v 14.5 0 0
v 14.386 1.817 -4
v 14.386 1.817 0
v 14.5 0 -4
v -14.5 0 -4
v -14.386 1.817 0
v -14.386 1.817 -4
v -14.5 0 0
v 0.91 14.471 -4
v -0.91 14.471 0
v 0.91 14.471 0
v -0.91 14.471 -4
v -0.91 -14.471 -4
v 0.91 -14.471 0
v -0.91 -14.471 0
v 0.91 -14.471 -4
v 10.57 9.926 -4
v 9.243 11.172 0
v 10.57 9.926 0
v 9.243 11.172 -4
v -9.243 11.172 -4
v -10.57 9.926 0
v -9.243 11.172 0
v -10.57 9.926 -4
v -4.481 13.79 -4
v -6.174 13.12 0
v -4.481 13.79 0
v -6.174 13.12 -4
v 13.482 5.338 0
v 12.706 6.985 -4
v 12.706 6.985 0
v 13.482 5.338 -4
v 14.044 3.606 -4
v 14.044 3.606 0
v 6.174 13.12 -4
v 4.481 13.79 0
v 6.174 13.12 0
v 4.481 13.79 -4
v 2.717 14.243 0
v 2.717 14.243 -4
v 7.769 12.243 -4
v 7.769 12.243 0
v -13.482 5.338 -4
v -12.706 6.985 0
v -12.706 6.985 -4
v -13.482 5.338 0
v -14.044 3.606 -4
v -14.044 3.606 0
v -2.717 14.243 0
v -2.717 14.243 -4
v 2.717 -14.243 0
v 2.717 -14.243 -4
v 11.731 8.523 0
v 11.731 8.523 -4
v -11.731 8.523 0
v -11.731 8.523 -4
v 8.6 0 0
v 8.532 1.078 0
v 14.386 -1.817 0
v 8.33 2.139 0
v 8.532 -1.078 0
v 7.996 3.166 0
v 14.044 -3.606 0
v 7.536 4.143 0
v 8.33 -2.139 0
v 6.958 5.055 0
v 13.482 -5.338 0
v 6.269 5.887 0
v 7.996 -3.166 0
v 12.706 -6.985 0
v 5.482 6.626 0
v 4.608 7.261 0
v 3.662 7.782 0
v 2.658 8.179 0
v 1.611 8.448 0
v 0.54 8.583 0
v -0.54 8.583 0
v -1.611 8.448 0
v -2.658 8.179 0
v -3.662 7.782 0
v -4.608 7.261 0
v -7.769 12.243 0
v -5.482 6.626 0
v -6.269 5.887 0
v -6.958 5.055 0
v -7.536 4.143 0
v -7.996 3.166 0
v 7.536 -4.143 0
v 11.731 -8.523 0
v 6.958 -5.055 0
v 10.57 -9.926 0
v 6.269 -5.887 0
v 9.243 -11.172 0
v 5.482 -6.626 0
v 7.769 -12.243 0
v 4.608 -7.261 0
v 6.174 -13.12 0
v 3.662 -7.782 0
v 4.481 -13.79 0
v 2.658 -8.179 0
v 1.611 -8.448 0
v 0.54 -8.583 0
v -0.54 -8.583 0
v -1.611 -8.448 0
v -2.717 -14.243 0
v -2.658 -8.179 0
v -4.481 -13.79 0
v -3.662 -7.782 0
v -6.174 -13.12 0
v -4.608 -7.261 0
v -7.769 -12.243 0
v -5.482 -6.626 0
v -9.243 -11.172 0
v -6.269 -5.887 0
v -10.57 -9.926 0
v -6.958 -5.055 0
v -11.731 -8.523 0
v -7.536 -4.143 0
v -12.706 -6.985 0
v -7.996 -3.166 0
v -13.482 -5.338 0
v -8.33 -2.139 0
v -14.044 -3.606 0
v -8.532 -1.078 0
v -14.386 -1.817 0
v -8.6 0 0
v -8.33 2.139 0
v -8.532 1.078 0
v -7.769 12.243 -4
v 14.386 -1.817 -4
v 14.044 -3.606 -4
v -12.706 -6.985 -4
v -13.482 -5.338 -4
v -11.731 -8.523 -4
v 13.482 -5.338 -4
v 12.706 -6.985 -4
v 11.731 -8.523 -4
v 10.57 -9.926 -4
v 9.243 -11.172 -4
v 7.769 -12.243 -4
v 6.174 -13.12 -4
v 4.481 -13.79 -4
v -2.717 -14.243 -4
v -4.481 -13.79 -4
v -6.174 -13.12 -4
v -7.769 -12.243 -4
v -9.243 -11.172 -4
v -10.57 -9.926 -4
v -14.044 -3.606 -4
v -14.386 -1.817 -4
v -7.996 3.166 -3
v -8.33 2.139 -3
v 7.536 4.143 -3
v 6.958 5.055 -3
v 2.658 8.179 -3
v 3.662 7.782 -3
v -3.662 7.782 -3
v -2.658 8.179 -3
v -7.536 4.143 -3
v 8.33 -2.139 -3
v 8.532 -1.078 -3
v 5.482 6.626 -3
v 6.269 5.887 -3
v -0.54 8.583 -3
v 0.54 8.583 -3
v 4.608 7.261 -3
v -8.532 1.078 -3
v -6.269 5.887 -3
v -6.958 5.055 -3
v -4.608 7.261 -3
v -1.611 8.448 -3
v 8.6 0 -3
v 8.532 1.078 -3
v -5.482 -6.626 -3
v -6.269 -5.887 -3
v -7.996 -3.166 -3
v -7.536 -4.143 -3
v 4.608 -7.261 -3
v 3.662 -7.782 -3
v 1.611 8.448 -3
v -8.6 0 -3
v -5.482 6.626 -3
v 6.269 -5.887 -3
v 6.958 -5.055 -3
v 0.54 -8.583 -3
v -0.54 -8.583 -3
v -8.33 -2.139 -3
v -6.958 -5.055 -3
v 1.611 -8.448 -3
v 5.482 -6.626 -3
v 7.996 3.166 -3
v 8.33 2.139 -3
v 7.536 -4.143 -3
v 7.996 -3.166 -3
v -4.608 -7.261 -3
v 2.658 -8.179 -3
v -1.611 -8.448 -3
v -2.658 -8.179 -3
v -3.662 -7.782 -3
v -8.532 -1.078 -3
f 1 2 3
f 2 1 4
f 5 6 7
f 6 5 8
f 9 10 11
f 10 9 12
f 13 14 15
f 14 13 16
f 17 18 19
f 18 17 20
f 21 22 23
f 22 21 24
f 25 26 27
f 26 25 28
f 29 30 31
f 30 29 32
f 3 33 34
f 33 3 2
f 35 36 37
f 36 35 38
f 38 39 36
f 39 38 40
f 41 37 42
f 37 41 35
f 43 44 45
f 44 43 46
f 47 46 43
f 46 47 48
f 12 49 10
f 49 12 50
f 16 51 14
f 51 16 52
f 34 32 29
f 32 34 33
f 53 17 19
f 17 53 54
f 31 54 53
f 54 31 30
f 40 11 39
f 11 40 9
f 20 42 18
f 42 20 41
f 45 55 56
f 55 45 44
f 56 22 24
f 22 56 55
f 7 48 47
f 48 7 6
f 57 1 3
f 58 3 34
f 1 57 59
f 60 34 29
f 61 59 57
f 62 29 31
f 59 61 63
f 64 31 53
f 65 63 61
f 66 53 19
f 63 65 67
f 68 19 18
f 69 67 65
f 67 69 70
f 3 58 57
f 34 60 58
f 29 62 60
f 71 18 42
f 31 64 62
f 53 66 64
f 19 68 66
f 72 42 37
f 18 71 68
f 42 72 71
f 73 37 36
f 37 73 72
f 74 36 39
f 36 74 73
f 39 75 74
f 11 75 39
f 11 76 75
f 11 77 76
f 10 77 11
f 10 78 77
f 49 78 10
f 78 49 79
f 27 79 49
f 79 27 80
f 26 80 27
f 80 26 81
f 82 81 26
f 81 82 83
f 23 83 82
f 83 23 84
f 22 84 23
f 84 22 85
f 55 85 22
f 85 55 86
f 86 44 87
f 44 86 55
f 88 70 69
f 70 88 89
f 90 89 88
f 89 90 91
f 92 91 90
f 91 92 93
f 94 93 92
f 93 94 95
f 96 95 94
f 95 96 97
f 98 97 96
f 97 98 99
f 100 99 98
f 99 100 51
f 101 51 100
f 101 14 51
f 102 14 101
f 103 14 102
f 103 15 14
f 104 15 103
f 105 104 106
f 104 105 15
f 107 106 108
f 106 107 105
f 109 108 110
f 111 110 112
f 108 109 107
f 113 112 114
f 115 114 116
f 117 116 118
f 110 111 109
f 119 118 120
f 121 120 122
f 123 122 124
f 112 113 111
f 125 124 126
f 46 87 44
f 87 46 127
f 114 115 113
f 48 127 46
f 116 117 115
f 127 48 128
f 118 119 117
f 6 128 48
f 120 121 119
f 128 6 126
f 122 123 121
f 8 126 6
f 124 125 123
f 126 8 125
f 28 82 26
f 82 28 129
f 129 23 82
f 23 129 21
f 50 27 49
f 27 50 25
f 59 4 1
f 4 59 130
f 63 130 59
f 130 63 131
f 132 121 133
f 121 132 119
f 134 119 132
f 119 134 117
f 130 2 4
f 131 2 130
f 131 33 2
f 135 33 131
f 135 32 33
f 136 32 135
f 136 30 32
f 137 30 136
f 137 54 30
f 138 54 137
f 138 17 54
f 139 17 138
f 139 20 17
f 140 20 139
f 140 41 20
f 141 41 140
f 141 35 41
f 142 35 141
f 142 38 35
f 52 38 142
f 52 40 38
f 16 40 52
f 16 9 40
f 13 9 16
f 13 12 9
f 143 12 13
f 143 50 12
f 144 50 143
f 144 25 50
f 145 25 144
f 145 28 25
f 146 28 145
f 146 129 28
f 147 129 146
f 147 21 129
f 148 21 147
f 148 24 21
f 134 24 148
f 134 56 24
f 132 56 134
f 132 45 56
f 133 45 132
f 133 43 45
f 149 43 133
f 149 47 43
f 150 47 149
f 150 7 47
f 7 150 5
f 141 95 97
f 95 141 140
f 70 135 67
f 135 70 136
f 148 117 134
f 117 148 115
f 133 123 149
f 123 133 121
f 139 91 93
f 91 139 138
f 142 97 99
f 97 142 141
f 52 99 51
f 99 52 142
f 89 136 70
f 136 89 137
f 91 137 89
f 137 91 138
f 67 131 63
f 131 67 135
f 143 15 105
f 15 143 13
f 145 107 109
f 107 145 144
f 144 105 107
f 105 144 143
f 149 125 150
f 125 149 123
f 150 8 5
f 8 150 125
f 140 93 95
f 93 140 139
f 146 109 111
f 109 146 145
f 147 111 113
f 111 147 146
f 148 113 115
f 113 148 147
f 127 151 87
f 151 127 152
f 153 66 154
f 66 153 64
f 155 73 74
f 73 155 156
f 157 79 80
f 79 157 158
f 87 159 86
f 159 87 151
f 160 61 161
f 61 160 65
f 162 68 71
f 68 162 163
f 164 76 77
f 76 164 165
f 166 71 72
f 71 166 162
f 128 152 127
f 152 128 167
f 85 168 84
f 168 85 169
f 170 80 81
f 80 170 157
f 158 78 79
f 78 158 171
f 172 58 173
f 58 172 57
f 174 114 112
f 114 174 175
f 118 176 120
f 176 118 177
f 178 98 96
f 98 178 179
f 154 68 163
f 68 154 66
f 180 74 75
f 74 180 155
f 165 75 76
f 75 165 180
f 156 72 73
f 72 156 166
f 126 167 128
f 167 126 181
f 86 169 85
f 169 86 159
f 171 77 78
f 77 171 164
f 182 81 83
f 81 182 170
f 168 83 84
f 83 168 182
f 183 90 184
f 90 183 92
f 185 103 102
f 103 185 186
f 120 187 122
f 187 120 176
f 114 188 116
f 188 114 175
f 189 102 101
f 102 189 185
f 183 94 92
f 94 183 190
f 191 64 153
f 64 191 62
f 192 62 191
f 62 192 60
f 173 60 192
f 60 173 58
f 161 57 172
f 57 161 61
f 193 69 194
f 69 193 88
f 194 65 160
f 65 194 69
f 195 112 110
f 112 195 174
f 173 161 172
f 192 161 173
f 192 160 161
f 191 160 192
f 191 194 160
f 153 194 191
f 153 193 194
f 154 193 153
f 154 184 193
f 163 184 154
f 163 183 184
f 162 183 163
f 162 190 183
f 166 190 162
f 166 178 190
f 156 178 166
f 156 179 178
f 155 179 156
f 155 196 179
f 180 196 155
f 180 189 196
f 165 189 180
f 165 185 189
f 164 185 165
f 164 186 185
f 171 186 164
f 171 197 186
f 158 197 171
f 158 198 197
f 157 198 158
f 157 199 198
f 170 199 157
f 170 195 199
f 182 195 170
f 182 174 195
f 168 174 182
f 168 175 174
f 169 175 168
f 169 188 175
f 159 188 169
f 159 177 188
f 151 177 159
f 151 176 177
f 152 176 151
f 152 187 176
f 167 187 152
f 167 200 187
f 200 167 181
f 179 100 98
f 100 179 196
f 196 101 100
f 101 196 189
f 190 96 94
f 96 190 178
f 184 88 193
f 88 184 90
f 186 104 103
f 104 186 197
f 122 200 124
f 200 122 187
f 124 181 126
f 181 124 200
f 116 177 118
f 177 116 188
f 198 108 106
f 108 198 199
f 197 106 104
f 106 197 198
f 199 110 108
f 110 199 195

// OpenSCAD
$fn = 50;


difference() {
	union() {
		translate(v = [0, 0, -4.0000000000]) {
			cylinder(h = 4, r = 14.5000000000);
		}
	}
	union() {
		#translate(v = [0, 0, -3.0000000000]) {
			cylinder(h = 3, r = 8.6000000000);
		}
	}
}
